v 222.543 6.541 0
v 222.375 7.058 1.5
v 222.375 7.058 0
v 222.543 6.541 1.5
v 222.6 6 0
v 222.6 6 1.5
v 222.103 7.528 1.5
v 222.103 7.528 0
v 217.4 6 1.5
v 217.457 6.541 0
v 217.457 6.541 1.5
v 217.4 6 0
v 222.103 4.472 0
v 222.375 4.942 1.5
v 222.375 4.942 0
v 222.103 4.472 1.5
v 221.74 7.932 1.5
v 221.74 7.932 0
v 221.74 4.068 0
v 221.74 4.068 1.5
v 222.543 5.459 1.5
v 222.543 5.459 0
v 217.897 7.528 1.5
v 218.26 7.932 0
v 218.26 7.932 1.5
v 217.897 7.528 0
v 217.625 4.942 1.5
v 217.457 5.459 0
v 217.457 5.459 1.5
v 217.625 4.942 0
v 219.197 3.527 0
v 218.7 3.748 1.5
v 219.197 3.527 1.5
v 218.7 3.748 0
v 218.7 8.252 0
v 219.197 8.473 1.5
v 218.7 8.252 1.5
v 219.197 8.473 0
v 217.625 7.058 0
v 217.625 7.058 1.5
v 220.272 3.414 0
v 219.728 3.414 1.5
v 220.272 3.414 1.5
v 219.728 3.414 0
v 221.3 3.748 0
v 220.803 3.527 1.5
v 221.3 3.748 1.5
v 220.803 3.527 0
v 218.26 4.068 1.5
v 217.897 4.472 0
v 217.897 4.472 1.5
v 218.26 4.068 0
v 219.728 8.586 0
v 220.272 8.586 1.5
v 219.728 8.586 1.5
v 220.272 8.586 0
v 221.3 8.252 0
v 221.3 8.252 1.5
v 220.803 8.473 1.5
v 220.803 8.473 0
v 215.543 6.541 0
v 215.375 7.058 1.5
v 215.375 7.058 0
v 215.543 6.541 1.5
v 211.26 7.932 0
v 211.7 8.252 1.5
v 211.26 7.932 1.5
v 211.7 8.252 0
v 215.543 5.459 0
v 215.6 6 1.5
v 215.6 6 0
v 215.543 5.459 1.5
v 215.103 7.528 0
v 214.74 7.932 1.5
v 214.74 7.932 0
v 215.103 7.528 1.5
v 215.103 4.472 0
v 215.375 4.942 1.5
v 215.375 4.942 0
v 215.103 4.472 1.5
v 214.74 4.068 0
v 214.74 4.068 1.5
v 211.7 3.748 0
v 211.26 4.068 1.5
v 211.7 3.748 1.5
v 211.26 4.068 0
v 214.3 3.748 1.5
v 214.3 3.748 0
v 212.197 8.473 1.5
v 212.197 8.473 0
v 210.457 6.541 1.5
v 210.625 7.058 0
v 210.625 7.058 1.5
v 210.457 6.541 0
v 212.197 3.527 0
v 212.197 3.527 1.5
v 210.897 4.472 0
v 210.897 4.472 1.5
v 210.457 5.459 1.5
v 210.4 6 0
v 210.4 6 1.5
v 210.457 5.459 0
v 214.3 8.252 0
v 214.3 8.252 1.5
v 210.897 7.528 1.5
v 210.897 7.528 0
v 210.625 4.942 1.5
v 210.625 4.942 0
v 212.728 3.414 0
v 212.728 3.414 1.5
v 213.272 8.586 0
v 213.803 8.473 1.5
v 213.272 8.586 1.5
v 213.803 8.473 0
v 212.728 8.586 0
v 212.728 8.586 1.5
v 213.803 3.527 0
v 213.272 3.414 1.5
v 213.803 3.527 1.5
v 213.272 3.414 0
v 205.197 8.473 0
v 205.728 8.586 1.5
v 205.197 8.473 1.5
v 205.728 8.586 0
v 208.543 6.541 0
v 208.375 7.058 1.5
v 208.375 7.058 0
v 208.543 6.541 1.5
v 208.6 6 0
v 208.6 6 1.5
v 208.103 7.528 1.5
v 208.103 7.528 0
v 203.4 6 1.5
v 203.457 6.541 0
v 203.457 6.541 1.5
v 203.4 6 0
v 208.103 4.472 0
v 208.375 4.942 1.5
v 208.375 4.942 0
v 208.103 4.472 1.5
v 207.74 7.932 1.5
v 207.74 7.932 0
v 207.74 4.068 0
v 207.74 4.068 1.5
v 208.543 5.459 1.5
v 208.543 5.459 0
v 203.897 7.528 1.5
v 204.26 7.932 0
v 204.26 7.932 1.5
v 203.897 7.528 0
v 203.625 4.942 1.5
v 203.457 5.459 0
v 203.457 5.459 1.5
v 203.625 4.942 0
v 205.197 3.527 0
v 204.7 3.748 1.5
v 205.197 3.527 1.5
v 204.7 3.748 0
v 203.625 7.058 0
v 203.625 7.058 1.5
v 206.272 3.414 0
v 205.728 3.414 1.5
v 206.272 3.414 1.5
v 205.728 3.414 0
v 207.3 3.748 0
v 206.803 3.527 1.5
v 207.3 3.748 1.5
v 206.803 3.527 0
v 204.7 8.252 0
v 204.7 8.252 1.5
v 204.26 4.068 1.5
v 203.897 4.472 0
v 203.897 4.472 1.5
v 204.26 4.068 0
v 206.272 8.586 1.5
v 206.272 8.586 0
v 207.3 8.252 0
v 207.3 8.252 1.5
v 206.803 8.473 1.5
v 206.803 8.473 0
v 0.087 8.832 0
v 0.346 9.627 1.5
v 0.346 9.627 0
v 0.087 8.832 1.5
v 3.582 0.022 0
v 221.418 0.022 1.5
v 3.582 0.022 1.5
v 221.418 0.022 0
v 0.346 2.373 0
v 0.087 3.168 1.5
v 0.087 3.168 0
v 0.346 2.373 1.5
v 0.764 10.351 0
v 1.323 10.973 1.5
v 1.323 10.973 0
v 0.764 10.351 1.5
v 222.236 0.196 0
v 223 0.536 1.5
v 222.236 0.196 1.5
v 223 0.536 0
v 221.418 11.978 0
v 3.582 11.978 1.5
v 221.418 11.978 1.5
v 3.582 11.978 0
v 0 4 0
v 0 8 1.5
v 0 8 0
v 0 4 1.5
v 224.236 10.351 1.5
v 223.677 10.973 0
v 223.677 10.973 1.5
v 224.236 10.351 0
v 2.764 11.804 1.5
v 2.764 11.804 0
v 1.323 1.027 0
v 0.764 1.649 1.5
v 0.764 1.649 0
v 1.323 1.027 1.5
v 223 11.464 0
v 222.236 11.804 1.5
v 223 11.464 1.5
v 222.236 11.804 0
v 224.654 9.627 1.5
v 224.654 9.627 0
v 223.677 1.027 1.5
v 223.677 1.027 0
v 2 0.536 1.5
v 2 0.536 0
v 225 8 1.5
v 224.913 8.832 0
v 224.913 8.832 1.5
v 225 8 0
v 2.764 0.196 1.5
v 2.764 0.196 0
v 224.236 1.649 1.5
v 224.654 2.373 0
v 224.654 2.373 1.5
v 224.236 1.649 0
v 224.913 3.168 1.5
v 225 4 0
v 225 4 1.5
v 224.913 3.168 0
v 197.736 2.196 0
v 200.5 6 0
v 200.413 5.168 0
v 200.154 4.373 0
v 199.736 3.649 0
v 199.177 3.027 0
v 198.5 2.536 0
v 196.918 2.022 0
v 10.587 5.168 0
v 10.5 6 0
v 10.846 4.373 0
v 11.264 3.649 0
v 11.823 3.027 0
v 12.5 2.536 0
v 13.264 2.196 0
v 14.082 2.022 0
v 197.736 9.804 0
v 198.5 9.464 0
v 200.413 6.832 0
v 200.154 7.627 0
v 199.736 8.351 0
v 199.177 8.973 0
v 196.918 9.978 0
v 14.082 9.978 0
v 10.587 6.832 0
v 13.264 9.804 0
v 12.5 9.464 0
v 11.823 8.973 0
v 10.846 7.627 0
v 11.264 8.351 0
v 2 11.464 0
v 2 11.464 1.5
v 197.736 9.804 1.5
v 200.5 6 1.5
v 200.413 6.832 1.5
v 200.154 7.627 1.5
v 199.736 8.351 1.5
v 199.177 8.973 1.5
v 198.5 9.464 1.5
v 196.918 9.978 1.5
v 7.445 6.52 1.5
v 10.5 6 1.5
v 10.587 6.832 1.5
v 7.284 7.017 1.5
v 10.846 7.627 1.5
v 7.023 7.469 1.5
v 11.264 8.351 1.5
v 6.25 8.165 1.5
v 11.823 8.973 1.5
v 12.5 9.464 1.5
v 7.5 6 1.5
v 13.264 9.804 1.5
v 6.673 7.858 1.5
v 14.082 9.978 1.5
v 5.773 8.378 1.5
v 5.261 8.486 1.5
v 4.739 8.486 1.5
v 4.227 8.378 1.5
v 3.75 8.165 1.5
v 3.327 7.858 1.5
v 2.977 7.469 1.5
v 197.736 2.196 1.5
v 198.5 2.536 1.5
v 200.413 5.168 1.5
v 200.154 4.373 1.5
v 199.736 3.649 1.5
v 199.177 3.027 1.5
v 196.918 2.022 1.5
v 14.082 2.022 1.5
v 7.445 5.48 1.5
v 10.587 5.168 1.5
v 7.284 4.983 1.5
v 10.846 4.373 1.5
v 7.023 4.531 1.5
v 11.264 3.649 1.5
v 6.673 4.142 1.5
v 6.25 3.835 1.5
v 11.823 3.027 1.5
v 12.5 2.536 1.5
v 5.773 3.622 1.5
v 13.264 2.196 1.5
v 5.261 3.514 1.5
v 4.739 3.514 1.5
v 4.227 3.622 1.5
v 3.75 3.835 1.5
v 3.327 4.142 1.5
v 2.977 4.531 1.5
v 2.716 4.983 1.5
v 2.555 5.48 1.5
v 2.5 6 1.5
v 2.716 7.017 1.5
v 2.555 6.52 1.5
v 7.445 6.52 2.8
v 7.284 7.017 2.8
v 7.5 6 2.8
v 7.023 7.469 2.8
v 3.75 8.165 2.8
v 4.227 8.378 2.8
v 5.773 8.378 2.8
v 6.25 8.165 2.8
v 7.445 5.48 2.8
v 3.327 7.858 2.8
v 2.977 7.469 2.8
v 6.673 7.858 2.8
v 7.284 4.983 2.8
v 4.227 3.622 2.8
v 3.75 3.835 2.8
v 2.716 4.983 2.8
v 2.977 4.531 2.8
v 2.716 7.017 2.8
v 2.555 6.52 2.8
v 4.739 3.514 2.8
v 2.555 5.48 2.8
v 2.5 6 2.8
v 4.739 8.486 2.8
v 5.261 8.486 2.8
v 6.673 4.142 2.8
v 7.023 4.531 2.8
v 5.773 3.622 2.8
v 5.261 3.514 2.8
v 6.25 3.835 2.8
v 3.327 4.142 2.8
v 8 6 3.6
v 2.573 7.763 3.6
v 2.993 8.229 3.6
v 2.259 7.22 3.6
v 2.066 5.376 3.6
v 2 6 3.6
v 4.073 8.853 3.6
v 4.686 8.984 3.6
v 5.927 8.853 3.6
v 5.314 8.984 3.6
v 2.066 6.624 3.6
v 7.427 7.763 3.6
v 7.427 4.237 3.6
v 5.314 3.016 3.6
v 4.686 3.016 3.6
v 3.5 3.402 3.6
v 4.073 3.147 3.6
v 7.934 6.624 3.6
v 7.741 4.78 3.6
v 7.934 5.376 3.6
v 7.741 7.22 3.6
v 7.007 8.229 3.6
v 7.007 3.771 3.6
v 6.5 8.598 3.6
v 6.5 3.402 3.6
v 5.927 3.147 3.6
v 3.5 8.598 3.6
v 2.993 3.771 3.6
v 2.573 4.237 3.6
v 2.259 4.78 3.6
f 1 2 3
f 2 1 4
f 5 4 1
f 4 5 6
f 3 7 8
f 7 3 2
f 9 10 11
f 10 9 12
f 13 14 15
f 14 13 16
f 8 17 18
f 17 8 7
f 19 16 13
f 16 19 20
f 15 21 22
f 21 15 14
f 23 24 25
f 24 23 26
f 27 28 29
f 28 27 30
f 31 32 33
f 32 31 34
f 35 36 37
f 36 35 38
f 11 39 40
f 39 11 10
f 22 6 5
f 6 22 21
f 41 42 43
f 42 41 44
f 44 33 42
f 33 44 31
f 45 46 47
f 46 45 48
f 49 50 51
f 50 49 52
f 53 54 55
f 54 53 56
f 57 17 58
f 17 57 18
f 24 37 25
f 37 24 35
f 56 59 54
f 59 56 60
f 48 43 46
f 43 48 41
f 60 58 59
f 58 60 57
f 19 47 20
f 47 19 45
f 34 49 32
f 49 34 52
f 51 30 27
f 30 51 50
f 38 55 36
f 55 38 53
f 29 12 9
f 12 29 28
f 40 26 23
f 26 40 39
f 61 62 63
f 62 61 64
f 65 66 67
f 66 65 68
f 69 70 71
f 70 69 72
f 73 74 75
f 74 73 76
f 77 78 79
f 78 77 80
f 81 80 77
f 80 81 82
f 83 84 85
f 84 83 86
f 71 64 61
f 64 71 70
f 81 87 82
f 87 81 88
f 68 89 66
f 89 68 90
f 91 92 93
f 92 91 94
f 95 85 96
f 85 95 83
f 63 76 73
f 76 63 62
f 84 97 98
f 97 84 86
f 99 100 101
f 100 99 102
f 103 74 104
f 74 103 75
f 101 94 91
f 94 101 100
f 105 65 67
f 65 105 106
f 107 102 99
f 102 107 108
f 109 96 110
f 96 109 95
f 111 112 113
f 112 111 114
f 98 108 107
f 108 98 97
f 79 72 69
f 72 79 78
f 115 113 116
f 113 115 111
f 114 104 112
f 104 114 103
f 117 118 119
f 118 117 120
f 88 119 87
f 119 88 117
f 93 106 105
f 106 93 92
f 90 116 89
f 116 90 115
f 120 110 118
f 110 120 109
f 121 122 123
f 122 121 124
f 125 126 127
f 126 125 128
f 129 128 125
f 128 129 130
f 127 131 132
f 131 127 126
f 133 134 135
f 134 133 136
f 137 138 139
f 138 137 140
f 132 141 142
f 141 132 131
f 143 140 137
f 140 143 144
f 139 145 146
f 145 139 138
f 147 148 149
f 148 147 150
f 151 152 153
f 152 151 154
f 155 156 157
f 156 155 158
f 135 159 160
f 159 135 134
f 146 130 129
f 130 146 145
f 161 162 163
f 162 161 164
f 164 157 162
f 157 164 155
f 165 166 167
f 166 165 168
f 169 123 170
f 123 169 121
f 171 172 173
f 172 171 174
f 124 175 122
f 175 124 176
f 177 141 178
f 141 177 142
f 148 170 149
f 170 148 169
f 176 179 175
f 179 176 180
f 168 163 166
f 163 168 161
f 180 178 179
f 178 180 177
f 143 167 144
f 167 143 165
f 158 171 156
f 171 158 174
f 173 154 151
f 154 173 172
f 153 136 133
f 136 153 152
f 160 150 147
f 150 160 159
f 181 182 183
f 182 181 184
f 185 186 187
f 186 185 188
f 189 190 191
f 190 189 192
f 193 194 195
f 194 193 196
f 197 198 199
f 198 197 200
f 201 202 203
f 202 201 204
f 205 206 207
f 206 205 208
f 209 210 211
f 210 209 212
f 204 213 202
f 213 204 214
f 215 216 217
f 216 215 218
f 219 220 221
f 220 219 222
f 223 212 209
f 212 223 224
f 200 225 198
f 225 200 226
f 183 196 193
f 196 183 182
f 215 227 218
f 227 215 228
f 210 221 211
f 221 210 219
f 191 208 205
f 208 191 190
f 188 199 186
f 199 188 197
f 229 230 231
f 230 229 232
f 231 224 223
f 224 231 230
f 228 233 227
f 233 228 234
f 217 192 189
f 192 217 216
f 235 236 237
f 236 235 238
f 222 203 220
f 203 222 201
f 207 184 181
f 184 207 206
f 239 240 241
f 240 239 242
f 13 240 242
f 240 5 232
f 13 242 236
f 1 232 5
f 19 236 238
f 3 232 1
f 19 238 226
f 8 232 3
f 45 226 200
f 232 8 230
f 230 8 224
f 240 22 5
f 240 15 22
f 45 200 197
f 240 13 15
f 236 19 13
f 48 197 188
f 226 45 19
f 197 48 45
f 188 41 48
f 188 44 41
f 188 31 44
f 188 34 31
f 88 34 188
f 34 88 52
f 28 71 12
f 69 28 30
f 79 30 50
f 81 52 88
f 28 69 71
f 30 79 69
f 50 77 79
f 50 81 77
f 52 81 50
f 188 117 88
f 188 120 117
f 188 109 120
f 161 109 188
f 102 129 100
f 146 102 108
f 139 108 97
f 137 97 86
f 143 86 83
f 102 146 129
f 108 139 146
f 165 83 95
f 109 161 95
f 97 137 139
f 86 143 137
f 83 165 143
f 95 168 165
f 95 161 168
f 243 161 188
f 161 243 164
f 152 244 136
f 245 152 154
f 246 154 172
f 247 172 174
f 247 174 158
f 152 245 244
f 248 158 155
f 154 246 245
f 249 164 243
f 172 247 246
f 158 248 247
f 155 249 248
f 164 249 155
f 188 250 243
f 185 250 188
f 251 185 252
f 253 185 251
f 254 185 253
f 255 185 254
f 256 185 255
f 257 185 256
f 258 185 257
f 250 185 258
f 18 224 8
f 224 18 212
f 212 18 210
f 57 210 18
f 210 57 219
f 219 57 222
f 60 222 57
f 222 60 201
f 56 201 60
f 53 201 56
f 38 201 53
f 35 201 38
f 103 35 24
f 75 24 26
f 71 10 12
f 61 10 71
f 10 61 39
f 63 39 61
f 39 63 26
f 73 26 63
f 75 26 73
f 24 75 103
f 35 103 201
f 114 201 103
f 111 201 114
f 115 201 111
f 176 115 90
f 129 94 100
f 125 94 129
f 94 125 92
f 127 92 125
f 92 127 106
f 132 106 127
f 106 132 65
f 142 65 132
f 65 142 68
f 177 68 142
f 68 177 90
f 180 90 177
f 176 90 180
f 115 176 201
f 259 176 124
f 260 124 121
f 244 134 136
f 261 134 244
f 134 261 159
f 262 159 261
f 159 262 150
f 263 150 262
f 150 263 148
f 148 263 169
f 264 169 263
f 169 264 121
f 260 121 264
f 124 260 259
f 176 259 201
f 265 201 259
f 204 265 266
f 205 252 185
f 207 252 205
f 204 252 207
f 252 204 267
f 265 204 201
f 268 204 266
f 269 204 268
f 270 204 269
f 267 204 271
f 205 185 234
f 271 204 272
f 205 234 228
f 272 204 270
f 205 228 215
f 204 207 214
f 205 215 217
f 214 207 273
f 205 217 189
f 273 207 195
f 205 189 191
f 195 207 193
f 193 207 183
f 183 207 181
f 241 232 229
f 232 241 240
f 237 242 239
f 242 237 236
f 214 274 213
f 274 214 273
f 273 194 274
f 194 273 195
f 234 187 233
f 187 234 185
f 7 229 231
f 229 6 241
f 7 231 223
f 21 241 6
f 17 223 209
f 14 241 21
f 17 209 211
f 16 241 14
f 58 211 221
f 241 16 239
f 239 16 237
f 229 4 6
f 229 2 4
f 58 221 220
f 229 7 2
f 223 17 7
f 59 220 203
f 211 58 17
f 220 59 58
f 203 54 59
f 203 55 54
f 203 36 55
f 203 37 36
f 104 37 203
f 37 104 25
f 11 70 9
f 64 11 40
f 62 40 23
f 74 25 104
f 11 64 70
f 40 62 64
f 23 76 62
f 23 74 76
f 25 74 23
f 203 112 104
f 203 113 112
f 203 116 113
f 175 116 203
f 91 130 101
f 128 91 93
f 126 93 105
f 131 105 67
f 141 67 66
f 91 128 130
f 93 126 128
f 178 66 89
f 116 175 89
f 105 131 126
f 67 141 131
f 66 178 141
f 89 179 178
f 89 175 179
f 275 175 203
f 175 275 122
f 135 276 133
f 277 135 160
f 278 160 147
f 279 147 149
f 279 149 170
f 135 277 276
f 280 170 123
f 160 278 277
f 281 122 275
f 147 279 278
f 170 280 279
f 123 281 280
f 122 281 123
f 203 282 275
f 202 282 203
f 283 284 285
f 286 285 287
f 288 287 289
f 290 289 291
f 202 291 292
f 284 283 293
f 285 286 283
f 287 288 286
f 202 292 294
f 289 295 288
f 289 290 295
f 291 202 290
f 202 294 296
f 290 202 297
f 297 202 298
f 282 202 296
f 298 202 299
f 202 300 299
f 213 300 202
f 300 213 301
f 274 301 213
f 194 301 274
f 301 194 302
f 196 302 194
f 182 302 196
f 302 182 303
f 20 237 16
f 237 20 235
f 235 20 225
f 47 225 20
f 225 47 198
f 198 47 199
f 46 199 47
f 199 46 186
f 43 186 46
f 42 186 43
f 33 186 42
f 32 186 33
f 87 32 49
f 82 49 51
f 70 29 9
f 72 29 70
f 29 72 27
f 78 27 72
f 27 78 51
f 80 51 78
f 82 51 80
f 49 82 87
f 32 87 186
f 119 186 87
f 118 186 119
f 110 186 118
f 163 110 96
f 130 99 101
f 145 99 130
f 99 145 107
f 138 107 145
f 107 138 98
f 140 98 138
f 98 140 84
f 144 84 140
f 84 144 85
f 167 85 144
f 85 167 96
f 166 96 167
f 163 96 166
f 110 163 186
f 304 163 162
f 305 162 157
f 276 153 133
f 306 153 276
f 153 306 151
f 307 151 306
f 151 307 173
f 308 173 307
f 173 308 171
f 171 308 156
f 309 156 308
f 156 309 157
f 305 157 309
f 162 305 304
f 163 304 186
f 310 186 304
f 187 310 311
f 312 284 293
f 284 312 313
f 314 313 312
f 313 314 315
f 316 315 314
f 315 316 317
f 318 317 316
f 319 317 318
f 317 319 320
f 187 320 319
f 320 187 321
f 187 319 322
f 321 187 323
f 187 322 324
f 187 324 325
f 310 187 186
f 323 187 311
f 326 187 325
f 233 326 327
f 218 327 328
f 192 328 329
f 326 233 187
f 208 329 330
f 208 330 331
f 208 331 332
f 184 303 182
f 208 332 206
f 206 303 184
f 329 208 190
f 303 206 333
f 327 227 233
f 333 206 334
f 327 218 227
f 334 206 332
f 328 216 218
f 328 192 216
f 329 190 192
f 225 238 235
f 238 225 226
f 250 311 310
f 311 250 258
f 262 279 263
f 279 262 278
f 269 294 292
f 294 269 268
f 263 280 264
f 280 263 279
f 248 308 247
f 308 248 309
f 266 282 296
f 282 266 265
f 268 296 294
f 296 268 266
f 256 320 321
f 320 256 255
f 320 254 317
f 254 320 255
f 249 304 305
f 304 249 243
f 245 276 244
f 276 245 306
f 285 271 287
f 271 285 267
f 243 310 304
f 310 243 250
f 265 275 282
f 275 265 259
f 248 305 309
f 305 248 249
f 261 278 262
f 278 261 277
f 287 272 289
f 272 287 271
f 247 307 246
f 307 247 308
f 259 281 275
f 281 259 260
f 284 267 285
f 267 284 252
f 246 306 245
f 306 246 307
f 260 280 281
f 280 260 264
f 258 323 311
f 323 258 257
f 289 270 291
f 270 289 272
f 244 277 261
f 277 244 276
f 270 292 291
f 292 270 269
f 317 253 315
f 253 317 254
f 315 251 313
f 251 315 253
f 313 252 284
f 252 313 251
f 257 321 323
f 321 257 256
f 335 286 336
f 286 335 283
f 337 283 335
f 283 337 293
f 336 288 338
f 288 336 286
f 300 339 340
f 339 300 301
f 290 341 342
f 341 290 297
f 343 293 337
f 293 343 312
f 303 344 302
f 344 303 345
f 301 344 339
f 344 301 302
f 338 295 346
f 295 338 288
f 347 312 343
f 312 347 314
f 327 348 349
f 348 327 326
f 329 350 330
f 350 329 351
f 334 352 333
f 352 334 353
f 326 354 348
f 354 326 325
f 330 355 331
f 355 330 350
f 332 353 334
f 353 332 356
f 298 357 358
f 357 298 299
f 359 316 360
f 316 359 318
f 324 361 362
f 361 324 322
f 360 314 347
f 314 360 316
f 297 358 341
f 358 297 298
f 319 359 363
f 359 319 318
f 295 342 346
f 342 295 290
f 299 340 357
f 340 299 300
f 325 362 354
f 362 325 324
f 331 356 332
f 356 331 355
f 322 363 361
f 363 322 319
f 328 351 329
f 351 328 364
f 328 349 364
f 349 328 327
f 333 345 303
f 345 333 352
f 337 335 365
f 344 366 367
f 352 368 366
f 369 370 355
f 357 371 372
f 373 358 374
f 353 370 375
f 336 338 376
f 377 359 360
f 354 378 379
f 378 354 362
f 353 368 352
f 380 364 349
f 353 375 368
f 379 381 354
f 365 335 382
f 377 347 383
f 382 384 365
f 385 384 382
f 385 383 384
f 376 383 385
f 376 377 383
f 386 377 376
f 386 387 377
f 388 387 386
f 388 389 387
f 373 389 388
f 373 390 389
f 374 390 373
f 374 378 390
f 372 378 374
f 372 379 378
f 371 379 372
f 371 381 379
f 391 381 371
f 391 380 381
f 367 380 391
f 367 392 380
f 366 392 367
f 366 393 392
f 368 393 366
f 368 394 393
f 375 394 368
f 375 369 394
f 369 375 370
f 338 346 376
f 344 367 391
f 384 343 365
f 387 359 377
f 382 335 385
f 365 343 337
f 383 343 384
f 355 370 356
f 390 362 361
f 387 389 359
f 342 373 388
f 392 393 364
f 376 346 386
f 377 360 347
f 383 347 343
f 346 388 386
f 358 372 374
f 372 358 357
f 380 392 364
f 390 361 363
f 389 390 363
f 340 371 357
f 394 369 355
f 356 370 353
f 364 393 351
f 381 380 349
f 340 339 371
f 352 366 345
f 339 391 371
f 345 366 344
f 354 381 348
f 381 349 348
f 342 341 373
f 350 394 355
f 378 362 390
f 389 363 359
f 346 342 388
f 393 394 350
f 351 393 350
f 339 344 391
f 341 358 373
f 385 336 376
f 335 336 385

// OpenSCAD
// Bracelet basic parameters
length = 225;    // Total length in mm
width = 12;      // Width of the band in mm
height = 1.5;    // Thickness/height of the band in mm
bevel_radius = 4; // Radius for the beveled/curved edges

// Improved closure system parameters
peg_diameter = 5;      // Increased diameter for more strength
peg_height = 2.6;      // Taller peg for better retention
peg_top_diameter = 6; // Flared top for secure fastening
peg_base_height = 1;   // Height of the reinforced base
hole_diameter = 5.2;   // Slightly larger than peg for good fit
num_holes = 3;         // Number of adjustment holes
hole_spacing = 7;      // Distance between hole centers
peg_offset = 5;        // Distance from end to peg

// Center rectangular cutout parameters
rect_width = 190;      // Width of the rectangular cutout
rect_height = 8;      // Height of the rectangular cutout
rect_bevel = 4;       // Bevel radius for the rectangular cutout
rect_offset_x = -7;    // Horizontal offset from center (positive = right)
rect_offset_y = 0;    // Vertical offset from center (positive = up)

module rounded_band() {
    // Create the main band with rounded edges
    hull() {
        translate([bevel_radius, bevel_radius, 0])
        cylinder(r=bevel_radius, h=height, $fn=30);
        
        translate([length - bevel_radius, bevel_radius, 0])
        cylinder(r=bevel_radius, h=height, $fn=30);
        
        translate([bevel_radius, width - bevel_radius, 0])
        cylinder(r=bevel_radius, h=height, $fn=30);
        
        translate([length - bevel_radius, width - bevel_radius, 0])
        cylinder(r=bevel_radius, h=height, $fn=30);
    }
}

// Rounded rectangle cutout module
module rounded_rect_cutout(width, height, radius, thick) {
    hull() {
        translate([radius, radius, -0.1])
        cylinder(r=radius, h=thick+0.2, $fn=30);
        
        translate([width - radius, radius, -0.1])
        cylinder(r=radius, h=thick+0.2, $fn=30);
        
        translate([radius, height - radius, -0.1])
        cylinder(r=radius, h=thick+0.2, $fn=30);
        
        translate([width - radius, height - radius, -0.1])
        cylinder(r=radius, h=thick+0.2, $fn=30);
    }
}

// Main bracelet body with cutouts
difference() {
    rounded_band();
    
    // Create adjustment holes on one end
    for (i = [0:num_holes-1]) {
        translate([length - peg_offset - (i * hole_spacing), width/2, -0.1])
        cylinder(d=hole_diameter, h=height+0.2, $fn=30);
    }
    
    // Add center rectangular cutout
    // Position it in the center of the bracelet with optional offsets
    translate([length/2 - rect_width/2 + rect_offset_x, width/2 - rect_height/2 + rect_offset_y, 0])
    rounded_rect_cutout(rect_width, rect_height, rect_bevel, height);
}

// Add a single peg on the other end with reinforced base
translate([peg_offset, width/2, 0]) {
    // Reinforced base for the peg
    cylinder(d=peg_diameter + 2, h=peg_base_height, $fn=30);
    
    // Peg with flared top
    translate([0, 0, peg_base_height]) {
        // Main peg body
        cylinder(d1=peg_diameter, d2=peg_diameter, h=peg_height-0.8, $fn=30);
        
        // Flared top portion
        translate([0, 0, peg_height-0.8])
        cylinder(d1=peg_diameter, d2=peg_top_diameter, h=0.8, $fn=30);
    }
}
